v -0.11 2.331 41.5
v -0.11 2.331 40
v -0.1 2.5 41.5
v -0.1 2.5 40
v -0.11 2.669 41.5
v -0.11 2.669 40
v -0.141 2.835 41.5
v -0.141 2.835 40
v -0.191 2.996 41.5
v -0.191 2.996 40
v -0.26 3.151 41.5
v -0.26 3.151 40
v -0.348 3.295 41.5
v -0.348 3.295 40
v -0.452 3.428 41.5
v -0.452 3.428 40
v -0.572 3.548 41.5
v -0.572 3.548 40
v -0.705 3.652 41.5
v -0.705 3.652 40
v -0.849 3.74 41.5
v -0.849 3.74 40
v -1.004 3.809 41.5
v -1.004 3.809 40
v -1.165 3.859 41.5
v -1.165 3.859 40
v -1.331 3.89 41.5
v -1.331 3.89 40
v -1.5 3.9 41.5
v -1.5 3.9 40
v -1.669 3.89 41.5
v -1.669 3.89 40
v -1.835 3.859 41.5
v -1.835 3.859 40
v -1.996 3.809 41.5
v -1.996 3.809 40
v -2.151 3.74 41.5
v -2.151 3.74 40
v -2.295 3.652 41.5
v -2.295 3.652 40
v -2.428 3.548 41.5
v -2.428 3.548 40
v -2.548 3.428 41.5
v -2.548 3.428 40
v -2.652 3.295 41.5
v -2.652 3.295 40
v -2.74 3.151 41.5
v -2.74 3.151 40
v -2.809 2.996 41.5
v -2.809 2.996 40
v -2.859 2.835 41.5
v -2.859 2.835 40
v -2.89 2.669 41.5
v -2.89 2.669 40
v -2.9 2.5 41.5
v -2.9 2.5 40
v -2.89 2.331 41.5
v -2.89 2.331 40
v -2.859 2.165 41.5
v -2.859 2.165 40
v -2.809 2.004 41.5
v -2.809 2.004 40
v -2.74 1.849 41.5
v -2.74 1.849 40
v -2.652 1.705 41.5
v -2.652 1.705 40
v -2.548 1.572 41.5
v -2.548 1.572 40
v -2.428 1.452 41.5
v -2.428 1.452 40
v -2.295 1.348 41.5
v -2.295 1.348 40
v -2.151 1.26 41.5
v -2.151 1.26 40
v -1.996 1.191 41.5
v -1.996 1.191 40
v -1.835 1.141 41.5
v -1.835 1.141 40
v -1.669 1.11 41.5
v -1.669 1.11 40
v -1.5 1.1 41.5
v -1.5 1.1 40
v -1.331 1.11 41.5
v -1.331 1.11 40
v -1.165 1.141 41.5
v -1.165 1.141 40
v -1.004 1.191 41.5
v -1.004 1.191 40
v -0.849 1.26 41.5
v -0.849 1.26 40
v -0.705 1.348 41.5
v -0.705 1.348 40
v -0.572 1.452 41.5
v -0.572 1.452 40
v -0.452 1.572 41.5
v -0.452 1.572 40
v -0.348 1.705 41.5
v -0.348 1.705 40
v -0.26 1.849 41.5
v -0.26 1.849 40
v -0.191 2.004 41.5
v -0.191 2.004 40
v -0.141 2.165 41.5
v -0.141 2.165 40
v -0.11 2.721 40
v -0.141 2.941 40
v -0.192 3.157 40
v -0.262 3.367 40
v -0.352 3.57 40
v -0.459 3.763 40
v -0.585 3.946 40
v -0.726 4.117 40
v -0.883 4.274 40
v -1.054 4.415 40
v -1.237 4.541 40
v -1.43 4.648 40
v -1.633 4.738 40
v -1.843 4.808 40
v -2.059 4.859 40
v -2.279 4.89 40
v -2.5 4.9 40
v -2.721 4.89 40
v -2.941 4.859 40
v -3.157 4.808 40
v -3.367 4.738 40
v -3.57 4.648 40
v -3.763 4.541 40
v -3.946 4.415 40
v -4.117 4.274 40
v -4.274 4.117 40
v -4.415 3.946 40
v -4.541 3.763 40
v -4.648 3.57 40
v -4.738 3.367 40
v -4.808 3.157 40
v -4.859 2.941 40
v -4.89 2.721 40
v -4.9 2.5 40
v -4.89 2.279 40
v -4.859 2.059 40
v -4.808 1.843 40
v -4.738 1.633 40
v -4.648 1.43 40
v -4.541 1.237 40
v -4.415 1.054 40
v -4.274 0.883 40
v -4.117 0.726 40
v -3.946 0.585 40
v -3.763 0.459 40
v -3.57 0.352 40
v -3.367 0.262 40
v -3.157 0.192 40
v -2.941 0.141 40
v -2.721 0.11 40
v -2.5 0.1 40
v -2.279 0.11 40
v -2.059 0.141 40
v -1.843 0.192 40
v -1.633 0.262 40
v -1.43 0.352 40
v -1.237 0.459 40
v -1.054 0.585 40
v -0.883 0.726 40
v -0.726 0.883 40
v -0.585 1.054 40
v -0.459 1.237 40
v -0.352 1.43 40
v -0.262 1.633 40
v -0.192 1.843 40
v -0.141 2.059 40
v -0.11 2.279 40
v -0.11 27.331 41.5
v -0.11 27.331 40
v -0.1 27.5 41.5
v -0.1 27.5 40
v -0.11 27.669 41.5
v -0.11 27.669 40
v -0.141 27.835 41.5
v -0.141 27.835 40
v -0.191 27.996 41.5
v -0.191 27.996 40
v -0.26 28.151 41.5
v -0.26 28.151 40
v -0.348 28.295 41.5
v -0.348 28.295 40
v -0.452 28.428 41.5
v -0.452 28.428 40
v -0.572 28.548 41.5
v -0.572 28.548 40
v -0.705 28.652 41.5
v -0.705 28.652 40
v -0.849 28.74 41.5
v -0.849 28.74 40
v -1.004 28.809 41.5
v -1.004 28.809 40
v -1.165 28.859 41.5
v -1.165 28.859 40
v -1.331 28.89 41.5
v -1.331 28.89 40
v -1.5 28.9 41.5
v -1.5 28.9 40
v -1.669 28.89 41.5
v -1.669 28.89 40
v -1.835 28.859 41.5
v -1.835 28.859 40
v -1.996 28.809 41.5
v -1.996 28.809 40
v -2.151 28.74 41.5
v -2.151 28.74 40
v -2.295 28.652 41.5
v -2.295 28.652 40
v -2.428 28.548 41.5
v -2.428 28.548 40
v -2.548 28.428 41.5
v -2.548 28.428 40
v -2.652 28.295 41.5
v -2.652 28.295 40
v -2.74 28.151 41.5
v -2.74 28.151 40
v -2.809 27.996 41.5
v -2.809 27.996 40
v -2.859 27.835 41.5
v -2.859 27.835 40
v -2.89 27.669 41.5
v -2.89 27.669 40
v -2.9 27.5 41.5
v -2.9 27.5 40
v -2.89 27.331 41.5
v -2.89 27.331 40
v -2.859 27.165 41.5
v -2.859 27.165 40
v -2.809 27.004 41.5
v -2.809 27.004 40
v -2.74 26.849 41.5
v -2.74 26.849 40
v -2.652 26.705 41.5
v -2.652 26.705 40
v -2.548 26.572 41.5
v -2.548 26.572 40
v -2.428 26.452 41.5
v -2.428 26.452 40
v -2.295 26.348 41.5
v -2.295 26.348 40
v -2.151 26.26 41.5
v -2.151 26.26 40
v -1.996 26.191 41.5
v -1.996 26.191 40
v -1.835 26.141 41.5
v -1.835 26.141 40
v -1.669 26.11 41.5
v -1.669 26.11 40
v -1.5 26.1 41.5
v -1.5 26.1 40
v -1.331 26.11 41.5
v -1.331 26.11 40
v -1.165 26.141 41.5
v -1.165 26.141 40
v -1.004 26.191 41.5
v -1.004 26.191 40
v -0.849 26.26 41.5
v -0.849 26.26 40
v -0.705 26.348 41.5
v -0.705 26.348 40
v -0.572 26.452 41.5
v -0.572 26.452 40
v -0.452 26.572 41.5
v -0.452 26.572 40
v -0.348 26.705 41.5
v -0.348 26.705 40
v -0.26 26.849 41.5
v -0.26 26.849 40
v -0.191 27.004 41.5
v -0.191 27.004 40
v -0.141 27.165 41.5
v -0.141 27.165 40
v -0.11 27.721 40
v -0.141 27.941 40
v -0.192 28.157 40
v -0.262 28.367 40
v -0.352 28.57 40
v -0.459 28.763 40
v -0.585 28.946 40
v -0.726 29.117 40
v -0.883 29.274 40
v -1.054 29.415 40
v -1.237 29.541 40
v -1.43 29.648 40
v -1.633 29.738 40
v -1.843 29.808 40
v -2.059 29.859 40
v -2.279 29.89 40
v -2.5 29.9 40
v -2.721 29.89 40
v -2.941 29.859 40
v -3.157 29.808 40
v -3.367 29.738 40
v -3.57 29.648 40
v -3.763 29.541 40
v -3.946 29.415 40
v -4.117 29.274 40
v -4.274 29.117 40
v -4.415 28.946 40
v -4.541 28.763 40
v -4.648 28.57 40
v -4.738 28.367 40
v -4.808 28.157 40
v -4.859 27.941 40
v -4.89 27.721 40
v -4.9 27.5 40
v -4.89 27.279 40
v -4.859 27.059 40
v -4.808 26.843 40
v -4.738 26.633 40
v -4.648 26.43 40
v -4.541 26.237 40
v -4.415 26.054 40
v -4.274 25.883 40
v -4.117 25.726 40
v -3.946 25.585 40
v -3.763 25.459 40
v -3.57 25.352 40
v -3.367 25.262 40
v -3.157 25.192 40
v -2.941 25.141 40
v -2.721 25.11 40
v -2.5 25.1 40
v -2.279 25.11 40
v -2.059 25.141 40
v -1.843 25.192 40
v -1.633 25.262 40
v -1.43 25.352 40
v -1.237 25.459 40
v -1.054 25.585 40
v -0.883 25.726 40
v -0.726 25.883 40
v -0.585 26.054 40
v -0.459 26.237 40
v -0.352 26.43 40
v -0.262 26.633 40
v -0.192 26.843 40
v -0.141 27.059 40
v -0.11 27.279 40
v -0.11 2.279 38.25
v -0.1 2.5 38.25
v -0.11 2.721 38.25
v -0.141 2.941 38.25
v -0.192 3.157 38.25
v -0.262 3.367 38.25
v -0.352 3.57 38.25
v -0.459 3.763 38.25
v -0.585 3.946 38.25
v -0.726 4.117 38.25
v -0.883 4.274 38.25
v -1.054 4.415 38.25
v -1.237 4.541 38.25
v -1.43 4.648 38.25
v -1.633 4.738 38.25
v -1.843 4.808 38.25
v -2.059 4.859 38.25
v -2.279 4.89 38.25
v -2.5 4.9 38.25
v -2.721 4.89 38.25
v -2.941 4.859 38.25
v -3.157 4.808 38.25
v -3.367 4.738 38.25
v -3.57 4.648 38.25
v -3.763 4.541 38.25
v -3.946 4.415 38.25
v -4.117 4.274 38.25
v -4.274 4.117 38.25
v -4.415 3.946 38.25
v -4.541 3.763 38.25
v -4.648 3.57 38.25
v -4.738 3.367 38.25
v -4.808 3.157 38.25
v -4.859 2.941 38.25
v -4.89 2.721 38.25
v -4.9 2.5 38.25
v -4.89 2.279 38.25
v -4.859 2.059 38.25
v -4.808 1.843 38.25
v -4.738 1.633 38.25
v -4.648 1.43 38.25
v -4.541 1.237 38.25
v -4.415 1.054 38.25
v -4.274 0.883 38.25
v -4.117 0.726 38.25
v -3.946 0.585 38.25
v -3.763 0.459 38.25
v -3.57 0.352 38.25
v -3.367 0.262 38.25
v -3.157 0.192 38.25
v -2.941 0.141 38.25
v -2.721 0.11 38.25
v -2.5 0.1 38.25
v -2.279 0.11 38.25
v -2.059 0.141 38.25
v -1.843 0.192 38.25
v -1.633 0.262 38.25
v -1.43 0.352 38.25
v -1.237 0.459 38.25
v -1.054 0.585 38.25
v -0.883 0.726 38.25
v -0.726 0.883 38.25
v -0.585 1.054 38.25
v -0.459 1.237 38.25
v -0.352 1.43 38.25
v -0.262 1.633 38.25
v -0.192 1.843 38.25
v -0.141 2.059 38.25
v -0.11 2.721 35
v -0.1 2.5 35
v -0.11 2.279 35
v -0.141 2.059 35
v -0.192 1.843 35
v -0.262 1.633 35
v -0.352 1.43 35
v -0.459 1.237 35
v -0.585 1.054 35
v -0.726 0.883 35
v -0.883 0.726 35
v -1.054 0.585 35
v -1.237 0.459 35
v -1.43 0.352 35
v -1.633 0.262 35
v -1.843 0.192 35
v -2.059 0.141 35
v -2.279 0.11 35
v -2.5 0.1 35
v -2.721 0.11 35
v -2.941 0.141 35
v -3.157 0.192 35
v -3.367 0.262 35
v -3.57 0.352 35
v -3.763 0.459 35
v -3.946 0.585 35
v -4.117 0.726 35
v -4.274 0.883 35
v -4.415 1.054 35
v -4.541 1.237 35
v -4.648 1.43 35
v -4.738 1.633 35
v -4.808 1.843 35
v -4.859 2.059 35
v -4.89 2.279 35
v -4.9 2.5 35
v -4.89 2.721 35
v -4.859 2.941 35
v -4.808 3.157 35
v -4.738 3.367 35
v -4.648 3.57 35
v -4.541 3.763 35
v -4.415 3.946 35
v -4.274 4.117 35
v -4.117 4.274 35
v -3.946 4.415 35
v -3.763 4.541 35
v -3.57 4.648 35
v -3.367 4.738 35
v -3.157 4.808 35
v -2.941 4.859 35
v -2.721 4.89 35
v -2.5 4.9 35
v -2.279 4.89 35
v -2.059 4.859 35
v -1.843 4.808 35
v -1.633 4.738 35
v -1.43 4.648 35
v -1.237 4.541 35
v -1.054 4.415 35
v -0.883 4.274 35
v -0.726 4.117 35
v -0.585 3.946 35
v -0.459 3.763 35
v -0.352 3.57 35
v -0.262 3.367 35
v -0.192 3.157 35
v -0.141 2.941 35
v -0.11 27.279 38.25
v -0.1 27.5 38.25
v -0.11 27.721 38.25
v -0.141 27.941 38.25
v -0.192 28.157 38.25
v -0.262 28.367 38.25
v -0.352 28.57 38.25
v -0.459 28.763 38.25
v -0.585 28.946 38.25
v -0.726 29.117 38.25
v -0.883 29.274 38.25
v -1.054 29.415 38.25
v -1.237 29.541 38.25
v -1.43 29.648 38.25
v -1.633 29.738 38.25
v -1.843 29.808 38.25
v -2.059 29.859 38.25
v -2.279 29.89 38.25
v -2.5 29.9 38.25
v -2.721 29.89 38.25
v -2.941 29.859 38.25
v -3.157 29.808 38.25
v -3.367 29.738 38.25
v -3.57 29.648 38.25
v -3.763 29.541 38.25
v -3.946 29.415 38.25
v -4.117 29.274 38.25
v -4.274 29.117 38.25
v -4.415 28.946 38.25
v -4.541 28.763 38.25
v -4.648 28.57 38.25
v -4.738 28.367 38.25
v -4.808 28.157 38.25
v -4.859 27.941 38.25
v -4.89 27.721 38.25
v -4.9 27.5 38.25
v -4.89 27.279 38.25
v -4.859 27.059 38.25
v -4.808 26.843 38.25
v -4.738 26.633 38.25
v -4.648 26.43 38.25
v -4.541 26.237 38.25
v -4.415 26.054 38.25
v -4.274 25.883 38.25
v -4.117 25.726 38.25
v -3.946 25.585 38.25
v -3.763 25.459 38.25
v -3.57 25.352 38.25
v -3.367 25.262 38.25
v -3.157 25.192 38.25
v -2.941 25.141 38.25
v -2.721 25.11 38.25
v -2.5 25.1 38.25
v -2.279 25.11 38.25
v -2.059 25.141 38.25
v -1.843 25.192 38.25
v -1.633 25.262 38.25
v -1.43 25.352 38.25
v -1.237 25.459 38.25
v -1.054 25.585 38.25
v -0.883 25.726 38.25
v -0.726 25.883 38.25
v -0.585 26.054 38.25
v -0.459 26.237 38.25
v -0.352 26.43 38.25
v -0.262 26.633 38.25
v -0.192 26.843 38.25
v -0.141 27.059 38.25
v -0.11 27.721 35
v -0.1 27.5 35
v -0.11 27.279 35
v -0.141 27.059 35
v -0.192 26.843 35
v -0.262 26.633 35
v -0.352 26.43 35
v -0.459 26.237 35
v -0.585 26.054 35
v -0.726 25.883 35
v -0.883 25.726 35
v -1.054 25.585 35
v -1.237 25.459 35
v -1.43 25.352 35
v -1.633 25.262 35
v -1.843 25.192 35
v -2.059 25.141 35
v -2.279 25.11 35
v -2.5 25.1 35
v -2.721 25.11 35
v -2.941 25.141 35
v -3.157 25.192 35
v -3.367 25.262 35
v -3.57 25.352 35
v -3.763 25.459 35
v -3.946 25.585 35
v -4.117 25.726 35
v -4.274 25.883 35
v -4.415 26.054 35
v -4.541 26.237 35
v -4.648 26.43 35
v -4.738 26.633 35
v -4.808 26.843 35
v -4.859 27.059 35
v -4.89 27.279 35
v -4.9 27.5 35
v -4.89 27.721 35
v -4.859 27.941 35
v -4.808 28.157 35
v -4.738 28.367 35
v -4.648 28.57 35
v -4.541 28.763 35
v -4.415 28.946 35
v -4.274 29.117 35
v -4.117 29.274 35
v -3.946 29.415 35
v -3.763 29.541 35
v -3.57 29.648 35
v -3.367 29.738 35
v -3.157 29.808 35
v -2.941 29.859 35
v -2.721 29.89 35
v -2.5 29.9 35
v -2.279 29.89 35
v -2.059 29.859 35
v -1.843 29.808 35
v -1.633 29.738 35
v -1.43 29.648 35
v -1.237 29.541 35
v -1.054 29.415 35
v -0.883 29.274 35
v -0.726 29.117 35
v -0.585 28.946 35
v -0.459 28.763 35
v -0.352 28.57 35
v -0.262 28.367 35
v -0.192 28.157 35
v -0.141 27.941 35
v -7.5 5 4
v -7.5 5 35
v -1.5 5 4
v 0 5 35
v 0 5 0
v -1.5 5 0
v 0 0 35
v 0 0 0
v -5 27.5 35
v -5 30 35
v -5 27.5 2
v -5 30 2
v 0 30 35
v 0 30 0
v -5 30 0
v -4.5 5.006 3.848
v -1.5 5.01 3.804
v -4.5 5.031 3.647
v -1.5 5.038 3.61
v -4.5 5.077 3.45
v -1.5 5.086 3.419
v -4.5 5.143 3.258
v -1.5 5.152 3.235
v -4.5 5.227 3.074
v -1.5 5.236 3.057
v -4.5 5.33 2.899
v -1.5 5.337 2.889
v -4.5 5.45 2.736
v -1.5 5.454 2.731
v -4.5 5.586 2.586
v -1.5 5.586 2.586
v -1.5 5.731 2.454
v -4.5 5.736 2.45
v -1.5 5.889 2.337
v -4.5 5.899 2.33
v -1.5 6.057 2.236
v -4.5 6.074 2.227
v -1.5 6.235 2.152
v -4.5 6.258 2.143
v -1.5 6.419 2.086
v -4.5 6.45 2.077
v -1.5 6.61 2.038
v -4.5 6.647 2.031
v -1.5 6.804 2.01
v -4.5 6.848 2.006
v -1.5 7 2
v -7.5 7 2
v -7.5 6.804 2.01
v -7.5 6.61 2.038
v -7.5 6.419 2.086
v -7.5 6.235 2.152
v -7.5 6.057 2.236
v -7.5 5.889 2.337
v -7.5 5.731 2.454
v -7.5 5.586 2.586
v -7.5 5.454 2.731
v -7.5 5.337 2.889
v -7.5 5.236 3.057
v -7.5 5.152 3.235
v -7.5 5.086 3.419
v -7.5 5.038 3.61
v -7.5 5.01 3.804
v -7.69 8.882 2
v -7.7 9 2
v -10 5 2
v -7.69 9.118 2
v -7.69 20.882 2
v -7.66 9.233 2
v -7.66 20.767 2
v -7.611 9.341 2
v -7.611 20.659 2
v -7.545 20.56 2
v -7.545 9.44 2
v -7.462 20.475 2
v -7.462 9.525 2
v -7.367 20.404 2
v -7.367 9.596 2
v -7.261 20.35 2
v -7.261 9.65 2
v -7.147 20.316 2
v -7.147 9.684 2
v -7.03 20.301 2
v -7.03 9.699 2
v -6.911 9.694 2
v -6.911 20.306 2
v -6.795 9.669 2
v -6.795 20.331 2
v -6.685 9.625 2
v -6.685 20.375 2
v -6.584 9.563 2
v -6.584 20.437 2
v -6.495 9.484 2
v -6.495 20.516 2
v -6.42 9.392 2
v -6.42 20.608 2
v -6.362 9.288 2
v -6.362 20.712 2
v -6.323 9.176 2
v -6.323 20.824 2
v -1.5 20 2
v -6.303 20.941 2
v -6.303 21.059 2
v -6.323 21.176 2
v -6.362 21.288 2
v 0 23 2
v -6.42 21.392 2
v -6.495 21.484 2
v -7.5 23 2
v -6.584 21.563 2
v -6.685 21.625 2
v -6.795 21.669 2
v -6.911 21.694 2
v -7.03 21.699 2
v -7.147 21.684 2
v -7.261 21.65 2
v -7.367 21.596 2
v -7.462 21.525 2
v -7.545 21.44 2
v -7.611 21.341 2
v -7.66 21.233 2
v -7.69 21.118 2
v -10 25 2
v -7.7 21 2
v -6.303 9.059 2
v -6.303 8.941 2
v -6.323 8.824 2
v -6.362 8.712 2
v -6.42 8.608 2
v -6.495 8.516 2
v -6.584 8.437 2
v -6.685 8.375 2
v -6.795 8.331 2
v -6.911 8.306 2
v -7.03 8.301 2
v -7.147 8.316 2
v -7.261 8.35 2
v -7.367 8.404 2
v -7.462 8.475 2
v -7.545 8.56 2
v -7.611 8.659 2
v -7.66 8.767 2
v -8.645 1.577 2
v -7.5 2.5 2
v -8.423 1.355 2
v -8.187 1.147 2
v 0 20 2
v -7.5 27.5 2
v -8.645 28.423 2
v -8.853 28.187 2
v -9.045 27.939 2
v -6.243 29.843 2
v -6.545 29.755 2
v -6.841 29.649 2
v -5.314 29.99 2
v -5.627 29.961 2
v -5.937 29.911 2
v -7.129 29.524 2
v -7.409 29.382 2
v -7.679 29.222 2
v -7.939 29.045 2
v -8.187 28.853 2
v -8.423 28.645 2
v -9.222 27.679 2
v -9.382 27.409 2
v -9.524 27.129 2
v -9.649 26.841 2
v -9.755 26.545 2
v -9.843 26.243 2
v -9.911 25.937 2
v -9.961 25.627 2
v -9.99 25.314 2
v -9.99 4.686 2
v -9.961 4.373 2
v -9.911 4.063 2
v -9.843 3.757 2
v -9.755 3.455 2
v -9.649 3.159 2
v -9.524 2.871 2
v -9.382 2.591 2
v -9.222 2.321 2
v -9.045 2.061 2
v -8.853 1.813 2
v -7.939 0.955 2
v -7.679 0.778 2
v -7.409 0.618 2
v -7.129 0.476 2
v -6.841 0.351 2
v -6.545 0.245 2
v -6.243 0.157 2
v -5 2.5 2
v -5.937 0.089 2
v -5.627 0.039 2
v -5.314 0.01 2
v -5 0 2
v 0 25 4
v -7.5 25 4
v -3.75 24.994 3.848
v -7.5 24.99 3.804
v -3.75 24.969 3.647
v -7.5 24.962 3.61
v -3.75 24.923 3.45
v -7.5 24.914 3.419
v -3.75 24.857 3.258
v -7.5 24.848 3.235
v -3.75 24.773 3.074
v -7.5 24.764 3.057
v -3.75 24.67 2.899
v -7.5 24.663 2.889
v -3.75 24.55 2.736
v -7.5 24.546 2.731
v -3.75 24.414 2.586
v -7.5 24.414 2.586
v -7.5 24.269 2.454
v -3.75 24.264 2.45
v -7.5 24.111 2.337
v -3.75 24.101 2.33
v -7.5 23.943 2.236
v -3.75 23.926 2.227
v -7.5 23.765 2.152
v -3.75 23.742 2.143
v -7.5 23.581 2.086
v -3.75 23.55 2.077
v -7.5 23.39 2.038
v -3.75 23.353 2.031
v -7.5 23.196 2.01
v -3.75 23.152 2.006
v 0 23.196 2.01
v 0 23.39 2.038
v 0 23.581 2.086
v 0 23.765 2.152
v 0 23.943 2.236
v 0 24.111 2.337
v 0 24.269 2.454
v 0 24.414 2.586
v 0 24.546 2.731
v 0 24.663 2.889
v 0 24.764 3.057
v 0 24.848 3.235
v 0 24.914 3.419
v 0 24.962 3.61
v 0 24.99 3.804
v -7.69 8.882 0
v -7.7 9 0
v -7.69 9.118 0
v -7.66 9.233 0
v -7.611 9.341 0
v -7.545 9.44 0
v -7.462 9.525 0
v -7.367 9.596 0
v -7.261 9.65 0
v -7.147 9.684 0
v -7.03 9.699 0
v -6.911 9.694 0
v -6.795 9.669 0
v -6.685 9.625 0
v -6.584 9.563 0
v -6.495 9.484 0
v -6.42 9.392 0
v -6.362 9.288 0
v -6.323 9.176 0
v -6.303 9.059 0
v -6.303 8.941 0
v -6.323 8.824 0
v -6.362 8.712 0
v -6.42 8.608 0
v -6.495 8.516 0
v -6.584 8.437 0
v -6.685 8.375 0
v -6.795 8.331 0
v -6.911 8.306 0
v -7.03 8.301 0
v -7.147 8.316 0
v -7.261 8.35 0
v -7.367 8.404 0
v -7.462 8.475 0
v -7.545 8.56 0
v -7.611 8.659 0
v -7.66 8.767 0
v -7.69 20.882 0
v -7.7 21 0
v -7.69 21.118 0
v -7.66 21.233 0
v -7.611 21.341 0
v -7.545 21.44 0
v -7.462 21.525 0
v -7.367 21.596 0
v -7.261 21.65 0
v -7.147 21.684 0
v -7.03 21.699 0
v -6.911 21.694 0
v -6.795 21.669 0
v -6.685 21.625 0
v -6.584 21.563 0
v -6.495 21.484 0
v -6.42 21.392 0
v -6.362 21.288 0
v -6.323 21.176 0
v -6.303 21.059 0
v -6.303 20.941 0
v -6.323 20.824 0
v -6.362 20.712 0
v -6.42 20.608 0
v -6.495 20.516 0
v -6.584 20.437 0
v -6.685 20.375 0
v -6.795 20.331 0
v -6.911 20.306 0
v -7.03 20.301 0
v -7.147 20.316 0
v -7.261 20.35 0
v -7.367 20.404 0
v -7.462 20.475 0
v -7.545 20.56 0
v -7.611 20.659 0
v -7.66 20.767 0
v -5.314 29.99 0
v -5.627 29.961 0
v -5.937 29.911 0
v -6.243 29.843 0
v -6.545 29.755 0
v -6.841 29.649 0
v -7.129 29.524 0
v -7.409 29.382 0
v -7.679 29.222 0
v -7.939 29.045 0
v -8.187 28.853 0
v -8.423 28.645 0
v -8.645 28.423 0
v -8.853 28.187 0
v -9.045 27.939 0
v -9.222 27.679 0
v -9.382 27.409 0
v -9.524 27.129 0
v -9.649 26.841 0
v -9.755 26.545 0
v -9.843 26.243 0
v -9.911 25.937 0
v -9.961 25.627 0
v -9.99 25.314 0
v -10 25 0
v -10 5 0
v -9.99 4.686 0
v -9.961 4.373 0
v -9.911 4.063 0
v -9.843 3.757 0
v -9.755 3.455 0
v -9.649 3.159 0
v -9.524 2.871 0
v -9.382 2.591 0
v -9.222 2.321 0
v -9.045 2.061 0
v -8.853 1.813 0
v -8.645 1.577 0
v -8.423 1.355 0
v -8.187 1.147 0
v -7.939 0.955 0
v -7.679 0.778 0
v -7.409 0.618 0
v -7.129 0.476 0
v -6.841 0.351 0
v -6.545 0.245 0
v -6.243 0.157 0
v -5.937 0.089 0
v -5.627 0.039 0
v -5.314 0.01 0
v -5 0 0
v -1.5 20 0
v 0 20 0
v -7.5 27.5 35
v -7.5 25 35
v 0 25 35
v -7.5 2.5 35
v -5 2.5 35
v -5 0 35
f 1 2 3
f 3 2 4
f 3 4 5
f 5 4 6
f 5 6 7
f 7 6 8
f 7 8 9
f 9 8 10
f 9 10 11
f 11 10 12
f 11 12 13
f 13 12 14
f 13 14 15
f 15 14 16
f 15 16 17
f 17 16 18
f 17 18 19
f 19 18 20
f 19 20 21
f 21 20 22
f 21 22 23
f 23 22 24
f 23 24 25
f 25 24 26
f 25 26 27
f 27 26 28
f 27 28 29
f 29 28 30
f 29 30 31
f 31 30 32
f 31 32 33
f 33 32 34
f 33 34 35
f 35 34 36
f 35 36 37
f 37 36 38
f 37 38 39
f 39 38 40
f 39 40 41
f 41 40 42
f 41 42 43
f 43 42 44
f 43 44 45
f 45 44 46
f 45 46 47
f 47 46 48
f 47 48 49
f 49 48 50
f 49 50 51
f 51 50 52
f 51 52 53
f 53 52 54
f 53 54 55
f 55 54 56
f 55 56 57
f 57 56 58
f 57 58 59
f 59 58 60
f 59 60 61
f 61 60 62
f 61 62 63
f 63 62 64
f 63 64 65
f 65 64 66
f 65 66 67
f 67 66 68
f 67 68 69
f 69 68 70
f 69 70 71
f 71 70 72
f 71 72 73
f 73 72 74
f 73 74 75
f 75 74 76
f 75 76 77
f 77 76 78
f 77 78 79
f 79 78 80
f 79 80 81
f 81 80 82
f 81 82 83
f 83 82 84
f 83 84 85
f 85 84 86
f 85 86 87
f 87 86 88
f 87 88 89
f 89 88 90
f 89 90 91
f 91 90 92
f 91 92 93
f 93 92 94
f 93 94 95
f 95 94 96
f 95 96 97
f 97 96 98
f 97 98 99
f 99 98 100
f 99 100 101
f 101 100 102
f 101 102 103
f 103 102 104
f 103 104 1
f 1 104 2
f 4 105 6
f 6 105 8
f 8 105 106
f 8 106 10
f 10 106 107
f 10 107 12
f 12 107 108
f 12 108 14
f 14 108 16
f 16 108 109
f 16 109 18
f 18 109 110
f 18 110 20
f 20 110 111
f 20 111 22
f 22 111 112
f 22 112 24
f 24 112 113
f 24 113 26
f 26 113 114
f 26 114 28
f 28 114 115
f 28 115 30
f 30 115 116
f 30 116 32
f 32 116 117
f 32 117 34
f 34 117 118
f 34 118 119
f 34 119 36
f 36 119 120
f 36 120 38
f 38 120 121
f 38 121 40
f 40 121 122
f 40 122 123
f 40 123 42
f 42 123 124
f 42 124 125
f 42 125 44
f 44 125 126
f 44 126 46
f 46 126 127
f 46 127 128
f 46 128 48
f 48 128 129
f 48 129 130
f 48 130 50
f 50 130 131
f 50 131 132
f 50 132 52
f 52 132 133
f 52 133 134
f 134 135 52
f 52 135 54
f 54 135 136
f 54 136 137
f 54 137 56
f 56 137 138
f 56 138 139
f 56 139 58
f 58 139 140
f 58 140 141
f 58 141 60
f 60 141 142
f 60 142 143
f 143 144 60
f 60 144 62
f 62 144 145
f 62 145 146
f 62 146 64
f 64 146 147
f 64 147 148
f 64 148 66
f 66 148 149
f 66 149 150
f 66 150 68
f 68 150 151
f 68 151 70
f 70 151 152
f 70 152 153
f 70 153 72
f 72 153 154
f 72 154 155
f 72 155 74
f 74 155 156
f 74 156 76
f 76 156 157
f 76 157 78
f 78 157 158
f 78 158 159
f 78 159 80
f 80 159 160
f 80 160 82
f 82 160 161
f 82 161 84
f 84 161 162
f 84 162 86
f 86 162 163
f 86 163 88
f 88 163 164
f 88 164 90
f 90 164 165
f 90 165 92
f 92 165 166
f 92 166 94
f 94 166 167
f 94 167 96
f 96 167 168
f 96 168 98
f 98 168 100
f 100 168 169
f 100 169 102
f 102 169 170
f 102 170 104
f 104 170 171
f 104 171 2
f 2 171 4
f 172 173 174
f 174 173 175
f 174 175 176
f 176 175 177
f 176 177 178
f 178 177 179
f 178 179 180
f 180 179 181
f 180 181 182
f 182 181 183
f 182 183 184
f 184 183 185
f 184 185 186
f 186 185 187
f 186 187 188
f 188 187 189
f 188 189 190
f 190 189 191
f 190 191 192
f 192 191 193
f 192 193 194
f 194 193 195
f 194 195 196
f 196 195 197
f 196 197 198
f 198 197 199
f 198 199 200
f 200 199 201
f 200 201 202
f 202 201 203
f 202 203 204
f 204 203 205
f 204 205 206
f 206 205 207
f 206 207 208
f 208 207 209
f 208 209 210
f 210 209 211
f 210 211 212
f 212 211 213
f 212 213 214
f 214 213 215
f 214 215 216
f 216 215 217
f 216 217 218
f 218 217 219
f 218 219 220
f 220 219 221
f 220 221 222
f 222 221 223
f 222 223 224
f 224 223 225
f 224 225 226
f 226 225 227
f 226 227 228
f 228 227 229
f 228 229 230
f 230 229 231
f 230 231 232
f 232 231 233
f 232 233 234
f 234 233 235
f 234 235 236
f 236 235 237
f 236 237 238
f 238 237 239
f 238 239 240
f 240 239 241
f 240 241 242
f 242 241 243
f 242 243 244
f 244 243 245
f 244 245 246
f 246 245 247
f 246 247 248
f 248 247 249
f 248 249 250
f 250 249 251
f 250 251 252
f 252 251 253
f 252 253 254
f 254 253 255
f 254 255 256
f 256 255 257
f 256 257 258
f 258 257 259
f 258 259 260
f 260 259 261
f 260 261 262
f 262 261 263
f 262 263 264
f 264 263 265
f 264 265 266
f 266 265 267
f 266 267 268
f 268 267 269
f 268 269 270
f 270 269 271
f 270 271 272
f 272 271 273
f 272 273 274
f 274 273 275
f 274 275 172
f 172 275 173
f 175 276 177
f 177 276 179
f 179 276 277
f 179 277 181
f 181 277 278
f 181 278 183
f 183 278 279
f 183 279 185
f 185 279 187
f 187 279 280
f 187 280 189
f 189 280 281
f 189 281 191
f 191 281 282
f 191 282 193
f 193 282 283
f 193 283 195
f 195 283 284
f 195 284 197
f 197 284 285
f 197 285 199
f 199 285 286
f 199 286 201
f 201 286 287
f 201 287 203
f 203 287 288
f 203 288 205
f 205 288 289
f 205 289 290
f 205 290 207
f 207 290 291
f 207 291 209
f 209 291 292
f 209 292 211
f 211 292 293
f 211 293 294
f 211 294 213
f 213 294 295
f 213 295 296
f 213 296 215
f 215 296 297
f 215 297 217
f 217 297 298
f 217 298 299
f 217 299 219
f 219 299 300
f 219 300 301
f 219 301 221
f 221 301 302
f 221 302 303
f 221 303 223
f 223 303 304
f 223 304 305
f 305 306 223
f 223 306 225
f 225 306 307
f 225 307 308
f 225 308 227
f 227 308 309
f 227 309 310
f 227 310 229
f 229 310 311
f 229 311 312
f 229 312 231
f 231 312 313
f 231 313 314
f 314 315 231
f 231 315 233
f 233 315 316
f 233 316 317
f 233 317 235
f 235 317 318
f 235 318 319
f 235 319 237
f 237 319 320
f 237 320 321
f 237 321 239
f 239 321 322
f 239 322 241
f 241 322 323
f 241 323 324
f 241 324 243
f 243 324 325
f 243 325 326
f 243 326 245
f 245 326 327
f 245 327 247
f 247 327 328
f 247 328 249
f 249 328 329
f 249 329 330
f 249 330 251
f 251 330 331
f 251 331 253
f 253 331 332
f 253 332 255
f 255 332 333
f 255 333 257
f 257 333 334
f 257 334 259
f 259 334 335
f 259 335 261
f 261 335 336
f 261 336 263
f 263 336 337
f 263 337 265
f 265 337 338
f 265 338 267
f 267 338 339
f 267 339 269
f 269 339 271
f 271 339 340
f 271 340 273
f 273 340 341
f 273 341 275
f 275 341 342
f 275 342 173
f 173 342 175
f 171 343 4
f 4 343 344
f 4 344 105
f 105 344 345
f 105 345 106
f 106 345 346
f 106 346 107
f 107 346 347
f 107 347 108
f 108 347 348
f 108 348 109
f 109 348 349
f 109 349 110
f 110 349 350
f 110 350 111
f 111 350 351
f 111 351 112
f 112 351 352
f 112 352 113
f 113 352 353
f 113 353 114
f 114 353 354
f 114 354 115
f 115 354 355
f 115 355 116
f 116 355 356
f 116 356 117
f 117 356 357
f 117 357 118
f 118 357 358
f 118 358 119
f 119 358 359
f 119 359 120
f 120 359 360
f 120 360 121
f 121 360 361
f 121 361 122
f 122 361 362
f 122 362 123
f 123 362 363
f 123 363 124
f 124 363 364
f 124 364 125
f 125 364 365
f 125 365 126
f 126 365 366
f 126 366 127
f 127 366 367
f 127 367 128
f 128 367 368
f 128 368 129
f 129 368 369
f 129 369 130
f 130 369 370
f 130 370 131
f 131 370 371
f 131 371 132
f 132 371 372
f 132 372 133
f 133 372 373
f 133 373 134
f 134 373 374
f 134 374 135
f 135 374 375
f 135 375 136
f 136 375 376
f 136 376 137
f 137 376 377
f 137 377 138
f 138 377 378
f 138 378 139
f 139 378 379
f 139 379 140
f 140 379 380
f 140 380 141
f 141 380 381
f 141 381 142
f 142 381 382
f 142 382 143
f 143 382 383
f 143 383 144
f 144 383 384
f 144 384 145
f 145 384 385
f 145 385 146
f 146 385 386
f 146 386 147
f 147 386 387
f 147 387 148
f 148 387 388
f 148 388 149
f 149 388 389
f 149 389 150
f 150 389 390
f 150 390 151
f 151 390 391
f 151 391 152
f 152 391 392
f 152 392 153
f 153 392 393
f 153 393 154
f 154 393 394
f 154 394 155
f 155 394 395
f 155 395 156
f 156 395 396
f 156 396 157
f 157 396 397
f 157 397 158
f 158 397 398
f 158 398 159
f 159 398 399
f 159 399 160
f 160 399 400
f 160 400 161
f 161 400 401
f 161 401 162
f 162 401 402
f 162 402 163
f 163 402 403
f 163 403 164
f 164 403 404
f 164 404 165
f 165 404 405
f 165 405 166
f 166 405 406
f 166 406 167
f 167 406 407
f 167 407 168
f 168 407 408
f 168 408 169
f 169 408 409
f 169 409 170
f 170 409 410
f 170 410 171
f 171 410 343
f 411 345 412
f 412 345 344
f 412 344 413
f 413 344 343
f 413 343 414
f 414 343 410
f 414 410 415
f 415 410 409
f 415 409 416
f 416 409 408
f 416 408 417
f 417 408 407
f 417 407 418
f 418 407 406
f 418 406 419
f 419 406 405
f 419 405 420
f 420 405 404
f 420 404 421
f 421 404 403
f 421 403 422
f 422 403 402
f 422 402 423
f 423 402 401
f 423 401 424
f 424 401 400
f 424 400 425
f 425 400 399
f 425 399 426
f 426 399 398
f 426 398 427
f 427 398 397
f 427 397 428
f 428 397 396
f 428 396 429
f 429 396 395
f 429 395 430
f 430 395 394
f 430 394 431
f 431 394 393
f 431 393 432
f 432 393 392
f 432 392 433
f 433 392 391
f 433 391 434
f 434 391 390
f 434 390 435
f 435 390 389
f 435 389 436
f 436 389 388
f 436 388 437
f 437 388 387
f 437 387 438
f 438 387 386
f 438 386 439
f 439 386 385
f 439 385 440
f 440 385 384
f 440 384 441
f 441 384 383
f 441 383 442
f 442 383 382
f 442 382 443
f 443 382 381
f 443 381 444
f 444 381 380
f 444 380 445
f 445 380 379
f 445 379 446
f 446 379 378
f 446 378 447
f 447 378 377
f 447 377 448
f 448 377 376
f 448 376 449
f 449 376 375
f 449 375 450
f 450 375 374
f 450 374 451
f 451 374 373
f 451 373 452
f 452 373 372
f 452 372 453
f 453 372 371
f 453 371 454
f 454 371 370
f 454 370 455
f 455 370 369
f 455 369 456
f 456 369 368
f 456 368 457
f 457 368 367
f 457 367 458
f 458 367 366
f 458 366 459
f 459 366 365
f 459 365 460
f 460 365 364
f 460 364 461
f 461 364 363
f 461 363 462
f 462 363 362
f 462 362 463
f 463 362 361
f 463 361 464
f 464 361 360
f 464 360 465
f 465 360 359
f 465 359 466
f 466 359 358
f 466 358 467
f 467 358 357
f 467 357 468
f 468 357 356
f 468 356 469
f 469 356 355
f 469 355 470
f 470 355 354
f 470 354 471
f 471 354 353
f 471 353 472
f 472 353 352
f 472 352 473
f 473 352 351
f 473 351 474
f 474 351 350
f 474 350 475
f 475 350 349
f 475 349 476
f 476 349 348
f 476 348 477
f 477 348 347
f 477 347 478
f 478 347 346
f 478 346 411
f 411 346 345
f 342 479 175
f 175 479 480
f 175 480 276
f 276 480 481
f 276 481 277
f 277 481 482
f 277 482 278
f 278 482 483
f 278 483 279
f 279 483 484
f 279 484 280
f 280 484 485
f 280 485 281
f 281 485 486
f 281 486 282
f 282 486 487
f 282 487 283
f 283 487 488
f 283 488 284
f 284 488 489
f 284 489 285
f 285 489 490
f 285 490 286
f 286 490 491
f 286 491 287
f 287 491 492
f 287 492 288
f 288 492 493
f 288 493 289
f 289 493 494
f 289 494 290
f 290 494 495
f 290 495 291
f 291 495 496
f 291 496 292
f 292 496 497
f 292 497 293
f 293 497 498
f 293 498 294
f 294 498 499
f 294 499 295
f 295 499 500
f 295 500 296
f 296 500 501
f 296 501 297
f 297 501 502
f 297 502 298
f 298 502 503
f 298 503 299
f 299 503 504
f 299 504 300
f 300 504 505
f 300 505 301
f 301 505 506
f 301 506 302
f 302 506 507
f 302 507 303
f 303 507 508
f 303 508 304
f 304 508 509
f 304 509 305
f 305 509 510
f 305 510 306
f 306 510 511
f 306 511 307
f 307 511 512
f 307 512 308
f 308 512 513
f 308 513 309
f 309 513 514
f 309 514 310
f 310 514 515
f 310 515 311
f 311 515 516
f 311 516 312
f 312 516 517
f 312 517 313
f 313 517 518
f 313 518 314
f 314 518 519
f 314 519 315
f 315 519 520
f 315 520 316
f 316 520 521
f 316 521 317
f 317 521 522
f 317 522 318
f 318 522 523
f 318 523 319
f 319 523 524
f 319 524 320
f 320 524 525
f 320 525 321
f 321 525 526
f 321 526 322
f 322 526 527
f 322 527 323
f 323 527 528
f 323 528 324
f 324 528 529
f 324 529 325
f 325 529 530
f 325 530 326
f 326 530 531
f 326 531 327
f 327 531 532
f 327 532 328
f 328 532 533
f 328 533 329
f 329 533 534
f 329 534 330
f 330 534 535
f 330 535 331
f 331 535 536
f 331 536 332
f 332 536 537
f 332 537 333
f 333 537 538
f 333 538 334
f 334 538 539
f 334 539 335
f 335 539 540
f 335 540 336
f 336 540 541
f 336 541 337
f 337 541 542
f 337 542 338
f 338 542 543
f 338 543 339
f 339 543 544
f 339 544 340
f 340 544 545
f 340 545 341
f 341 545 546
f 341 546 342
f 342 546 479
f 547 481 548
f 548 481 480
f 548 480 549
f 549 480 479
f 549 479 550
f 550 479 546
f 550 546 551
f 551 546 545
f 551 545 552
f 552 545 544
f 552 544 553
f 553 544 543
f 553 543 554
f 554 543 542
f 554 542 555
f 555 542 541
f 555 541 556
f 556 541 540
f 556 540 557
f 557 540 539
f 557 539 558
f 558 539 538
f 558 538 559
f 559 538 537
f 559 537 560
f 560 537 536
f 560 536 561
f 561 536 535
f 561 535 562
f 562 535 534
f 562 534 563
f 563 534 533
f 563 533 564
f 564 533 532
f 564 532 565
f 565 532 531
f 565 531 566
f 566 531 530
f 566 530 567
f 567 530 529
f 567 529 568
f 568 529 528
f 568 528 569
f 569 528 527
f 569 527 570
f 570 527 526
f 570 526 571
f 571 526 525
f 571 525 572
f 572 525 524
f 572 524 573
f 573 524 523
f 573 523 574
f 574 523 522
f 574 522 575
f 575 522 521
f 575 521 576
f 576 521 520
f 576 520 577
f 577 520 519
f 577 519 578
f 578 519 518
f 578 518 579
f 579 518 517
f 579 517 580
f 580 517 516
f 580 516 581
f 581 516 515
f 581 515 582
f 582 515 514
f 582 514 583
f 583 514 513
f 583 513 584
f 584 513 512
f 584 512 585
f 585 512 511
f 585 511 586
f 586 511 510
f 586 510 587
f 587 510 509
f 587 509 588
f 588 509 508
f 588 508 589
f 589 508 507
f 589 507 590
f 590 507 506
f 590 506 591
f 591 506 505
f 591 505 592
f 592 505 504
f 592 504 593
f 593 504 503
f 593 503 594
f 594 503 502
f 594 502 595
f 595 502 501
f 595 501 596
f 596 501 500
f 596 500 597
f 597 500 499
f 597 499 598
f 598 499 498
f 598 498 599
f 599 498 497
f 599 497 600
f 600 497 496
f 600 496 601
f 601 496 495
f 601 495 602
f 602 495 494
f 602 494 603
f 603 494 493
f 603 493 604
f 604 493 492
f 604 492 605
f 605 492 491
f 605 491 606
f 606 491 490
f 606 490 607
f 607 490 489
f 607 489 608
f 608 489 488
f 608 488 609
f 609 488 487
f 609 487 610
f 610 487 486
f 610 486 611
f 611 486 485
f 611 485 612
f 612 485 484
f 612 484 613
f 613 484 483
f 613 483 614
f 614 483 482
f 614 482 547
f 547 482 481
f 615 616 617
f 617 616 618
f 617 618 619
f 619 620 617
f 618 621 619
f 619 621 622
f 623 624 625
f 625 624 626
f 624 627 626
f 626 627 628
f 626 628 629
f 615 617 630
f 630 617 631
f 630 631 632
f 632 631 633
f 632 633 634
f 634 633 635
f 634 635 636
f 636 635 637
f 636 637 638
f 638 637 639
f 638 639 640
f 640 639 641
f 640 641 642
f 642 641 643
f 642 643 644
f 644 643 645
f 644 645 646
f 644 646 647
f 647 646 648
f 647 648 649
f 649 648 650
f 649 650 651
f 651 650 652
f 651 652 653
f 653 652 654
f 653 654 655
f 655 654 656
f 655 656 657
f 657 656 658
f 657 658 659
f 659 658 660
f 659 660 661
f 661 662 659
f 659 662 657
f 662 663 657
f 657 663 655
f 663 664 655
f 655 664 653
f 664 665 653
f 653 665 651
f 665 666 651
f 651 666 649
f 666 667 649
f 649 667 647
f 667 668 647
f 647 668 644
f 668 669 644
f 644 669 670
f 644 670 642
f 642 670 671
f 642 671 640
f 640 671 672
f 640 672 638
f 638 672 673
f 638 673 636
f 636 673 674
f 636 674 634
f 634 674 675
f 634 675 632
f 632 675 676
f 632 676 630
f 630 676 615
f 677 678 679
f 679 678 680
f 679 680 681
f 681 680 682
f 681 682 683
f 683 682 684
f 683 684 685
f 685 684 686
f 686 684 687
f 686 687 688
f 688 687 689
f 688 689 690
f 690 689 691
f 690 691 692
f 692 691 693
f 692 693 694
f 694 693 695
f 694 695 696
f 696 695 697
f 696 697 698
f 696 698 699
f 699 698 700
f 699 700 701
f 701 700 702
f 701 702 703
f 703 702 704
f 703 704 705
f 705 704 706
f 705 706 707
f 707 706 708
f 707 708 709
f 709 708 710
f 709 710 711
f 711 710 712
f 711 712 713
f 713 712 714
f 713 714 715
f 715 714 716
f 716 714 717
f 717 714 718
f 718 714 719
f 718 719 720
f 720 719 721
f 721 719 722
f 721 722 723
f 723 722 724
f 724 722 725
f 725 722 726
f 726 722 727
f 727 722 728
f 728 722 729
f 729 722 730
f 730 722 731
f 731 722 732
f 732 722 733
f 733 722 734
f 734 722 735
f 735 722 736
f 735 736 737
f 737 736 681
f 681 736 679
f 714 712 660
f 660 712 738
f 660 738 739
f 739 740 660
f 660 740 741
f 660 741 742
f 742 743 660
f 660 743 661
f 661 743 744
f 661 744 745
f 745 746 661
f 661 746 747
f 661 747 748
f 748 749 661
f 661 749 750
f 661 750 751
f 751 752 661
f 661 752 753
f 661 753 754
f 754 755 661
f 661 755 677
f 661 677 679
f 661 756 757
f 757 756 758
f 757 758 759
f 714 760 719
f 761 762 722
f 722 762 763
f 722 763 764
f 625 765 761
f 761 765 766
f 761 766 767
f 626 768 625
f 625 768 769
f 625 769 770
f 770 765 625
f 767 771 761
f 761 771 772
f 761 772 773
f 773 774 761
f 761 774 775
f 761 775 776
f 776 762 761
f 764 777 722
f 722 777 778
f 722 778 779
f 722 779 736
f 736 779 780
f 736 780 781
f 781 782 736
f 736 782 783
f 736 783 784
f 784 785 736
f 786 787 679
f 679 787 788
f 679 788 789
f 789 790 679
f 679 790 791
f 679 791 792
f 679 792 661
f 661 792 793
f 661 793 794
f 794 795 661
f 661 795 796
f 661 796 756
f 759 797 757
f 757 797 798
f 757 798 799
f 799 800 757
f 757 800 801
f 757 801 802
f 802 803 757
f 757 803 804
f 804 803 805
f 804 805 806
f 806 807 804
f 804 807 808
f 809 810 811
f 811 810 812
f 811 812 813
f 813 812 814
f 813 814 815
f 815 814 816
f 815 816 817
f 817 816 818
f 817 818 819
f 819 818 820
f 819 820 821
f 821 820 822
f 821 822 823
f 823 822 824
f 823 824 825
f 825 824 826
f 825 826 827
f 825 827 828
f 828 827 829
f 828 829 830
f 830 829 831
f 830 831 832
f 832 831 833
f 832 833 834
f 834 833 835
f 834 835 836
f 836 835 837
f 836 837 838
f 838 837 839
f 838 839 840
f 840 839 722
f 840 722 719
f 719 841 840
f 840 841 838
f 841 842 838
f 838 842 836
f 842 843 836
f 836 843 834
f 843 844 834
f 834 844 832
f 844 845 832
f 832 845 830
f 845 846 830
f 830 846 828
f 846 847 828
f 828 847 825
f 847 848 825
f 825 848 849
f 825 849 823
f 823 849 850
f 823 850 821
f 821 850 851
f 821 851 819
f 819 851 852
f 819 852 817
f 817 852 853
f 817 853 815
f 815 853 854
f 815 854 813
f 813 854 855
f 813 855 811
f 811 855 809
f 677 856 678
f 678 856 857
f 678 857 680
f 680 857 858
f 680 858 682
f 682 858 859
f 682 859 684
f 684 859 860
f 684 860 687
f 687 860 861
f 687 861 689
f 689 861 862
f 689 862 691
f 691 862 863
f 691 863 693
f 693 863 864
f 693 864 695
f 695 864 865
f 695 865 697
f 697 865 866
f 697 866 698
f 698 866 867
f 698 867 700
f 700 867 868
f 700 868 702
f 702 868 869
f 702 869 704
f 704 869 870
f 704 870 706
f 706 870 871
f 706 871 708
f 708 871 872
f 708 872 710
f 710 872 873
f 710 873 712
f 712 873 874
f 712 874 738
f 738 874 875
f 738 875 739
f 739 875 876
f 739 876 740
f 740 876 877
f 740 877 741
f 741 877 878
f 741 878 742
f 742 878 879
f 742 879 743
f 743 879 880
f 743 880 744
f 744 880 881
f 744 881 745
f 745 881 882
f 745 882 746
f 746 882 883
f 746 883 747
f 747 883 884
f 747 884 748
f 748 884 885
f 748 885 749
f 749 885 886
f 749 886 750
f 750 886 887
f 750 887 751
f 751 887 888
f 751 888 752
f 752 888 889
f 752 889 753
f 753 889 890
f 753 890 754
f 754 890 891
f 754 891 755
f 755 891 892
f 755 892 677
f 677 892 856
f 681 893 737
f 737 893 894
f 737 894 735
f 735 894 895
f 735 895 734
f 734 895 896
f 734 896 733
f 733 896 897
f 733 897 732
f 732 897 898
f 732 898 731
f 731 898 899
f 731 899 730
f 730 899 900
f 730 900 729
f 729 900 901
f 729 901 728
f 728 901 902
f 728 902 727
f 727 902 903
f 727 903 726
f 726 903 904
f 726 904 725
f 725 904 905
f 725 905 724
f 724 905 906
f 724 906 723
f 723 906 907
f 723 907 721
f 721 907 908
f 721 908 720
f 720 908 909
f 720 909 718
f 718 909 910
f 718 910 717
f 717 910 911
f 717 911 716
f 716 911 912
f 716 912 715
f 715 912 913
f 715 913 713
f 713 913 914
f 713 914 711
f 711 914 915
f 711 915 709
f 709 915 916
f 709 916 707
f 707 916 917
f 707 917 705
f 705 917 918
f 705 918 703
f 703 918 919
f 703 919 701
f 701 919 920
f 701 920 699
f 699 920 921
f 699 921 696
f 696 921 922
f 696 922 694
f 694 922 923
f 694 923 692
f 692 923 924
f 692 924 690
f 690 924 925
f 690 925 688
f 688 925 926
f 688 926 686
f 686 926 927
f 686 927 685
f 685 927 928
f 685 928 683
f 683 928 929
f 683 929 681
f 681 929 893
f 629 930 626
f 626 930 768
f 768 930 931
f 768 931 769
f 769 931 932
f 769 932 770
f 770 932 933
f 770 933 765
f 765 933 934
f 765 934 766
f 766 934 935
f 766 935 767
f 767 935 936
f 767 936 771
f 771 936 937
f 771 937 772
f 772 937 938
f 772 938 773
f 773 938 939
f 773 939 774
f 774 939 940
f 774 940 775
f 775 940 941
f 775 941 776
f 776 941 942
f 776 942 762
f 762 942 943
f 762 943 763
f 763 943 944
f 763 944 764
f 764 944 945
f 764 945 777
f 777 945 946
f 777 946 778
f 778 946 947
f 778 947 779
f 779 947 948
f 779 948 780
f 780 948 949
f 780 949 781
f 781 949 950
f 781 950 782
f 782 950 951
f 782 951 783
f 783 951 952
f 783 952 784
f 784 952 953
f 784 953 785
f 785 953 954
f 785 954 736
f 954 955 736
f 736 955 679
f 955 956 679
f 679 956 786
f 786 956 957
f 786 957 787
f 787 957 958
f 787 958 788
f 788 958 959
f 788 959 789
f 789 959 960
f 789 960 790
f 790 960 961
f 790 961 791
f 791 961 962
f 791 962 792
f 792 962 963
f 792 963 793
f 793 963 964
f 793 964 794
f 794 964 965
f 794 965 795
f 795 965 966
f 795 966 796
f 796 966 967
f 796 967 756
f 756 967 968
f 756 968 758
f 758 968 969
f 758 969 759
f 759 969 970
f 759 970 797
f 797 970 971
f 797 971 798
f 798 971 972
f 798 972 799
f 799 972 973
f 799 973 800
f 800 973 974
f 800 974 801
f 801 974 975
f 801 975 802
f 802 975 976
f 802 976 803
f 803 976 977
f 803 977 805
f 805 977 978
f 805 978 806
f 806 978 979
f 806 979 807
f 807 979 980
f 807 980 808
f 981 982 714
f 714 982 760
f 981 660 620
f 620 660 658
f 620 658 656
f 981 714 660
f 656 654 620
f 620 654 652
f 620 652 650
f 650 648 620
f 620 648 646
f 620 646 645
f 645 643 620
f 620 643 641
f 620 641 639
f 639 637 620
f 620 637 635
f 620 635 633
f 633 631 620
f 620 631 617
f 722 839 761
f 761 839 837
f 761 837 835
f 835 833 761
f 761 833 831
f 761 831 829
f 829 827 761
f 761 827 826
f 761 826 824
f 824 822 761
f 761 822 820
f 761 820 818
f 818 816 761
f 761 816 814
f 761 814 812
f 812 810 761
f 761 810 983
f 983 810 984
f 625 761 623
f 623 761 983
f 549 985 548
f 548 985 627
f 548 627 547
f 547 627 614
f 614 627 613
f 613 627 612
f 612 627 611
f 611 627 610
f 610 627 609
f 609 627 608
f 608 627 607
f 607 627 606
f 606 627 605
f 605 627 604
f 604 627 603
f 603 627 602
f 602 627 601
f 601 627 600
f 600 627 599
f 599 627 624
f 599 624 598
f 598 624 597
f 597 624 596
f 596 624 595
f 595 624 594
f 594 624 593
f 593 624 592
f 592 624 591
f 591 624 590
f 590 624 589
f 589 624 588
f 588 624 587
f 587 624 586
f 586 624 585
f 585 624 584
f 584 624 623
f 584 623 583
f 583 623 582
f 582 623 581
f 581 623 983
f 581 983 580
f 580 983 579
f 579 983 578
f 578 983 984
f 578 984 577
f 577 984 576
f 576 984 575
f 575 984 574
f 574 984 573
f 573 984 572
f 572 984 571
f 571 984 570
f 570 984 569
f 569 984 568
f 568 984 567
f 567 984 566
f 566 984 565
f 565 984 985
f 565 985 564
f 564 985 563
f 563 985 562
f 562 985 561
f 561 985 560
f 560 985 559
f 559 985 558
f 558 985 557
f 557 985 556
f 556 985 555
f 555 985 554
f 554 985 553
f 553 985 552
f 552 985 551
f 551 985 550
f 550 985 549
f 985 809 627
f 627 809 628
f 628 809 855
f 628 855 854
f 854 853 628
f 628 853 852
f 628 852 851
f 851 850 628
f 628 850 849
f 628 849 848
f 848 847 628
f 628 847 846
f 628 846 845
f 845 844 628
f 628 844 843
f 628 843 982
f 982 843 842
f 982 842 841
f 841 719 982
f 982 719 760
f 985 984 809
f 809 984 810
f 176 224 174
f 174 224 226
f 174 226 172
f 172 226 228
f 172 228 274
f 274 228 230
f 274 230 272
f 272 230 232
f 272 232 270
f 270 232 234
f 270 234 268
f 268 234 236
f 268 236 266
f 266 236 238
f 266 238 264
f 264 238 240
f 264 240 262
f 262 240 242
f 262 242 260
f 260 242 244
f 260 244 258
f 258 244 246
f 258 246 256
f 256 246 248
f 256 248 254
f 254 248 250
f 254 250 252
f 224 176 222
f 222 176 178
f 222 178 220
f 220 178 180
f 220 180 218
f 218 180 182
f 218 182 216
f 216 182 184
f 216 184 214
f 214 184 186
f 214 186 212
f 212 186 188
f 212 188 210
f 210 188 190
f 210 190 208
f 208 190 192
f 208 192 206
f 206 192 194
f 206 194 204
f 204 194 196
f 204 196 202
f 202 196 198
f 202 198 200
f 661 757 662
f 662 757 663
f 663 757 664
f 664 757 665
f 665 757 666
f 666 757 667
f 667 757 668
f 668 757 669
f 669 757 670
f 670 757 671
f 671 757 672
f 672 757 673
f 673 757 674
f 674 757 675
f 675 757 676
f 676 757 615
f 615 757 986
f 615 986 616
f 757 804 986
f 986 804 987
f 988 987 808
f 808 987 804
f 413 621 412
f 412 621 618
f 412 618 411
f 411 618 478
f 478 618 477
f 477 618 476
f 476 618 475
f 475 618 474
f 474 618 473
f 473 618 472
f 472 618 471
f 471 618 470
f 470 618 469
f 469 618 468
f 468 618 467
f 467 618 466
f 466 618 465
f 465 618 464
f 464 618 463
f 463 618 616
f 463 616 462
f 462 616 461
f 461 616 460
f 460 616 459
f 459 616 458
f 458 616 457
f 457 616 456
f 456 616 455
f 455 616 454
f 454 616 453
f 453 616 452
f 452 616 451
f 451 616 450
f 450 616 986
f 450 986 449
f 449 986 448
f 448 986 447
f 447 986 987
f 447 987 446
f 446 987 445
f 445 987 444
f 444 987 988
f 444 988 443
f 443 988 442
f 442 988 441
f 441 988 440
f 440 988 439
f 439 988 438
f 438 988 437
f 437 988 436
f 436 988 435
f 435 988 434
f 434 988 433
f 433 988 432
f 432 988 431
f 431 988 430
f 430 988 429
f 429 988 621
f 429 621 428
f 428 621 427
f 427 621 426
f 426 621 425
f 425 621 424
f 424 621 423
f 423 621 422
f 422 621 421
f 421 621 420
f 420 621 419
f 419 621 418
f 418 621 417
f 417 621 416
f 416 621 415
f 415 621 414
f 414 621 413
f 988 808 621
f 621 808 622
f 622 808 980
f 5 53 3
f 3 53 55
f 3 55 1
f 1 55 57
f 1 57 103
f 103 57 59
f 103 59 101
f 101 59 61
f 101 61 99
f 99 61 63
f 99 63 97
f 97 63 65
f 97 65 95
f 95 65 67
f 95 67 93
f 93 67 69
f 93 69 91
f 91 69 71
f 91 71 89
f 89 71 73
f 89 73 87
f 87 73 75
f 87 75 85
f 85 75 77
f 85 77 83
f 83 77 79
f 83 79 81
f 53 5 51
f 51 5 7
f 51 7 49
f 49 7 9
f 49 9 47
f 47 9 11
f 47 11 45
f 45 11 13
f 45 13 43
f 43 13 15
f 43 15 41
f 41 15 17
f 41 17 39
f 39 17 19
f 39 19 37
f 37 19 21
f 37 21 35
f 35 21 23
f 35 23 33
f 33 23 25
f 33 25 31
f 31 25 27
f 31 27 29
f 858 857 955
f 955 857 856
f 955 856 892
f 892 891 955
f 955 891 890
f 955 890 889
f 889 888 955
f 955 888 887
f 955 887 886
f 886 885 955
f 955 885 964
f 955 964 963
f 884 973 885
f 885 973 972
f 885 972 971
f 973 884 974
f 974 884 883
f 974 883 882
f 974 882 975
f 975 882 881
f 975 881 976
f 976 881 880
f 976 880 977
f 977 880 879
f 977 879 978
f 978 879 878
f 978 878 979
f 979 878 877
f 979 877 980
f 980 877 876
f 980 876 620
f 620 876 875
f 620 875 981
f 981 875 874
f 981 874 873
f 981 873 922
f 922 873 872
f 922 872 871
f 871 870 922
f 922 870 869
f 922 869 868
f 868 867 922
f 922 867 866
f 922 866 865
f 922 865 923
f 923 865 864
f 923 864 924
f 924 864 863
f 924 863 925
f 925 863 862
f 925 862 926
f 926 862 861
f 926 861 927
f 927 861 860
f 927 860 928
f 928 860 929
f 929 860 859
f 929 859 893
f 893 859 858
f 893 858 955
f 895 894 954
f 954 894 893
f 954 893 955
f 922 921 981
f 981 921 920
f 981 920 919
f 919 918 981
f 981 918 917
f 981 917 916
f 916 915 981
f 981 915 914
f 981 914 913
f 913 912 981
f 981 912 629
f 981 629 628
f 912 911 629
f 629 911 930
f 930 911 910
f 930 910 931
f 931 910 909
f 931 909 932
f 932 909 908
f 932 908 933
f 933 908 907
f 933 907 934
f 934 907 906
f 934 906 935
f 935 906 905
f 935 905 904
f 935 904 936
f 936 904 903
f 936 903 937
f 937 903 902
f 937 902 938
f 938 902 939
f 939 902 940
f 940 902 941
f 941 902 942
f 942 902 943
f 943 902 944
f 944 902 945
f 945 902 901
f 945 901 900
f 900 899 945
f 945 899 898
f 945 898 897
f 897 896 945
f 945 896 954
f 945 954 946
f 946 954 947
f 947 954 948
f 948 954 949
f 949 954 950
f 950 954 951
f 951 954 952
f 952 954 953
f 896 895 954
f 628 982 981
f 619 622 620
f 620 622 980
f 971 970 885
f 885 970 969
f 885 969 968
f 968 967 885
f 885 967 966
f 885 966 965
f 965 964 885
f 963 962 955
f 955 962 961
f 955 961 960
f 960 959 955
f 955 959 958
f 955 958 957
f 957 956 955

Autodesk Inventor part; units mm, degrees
ref_plane "YZ Plane" through (0, 0, 0) normal (1, 0, 0) x (0, 1, 0)
ref_plane "XZ Plane" through (0, 0, 0) normal (0, 1, 0) x (-1, 0, 0)
ref_plane "XY Plane" through (0, 0, 0) normal (0, 0, 1) x (1, 0, 0)
sketch "Esquisse1" plane through (0, 0, 0) normal (0, 0, 1) x (1, 0, 0)
  line L0 (0, 0) -> (-10, 0)
  line L1 (-10, 0) -> (-10, 30)
  line L2 (-10, 30) -> (0, 30)
  line L3 (0, 0) -> (-5, 0)
  line L4 (-5, 0) -> (-5, 5)
  line L5 (-5, 5) -> (0, 5)
  line L6 (0, 5) -> (0, 0)
  line L7 (0, 4) -> (-3, 4)
  line L8 (-3, 4) -> (-3, 1)
  line L9 (-3, 1) -> (0, 1)
  line L10 (0, 1) -> (0, 4)
  line L11 (-1.5, 5) -> (-1.5, 20)
  line L12 (-1.5, 20) -> (0, 20)
  line L13 (0, 30) -> (0, 20)
  line L14 (0, 5) -> (0, 0)
  line L15 (0, 29) -> (-3, 29)
  line L16 (-3, 29) -> (-3, 26)
  line L17 (-3, 26) -> (0, 26)
  line L18 (0, 26) -> (0, 29)
  line L19 (0, 25) -> (-5, 25)
  line L20 (-5, 25) -> (-5, 30)
  line L21 (-5, 25) -> (-7.5, 25)
  line L22 (-7.5, 25) -> (-7.5, 27.5)
  line L23 (-7.5, 27.5) -> (-5, 27.5)
  line L24 (-5, 27.5) -> (-5, 25)
  line L25 (-5, 0) -> (-7.5, 0)
  line L26 (-5, 2.5) -> (-5, 0)
  line L27 (-5, 5) -> (-7.5, 5)
  line L28 (-7.5, 5) -> (-7.5, 2.5)
  line L29 (-7.5, 2.5) -> (-5, 2.5)
  line L30 (-5, 2.5) -> (-5, 5)
  line L31 (-3, 26) -> (0, 26)
  line L32 (0, 26) -> (0, 29)
  line L33 (0, 29) -> (-3, 29)
  line L34 (-3, 29) -> (-3, 26)
  line L35 (-3, 1) -> (0, 1)
  line L36 (0, 1) -> (0, 4)
  line L37 (0, 4) -> (-3, 4)
  line L38 (-3, 4) -> (-3, 1)
  dimension "d0" = 10
  dimension "d1" = 30
  dimension "d2" = 5
  dimension "d3" = 5
  dimension "d4" = 3
  dimension "d5" = 3
  dimension "d6" = 1
  dimension "d7" = 15
  dimension "d9" = 3
  dimension "d10" = 3
  dimension "d11" = 1
  dimension "d12" = 5
  dimension "d13" = 5
  dimension "d14" = 2.5
  dimension "d15" = 2.5
  dimension "d20" = 2.5
  dimension "d21" = 2.5
extrude "Extrusion1" add sketch "Esquisse1" along normal blind 41.5 contours L0 L4 L5 L6 L7 L8 L9 | L9 L8 L7 L6 | L2 L13 L15 L16 L17 L19 L20 | L13 L17 L16 L15
extrude "Extrusion2" add sketch "Esquisse1" along normal blind 35 contours L29 L28 L27 L4 | L20 L21 L22 L23
extrude "Extrusion4" add sketch "Esquisse1" along normal blind 2 contours L0 L1 L2 L20 L23 L22 L21 L19 L13 L12 L11 L5 L27 L28 L29 L4
fillet "Congé1" radius 5 2 edges at (-10, 0, 1) (-10, 30, 1)
sketch "Esquisse3" plane through (0, 0, 0) normal (0, 0, -1) x (-1, 0, 0)
  circle A0 centre (7, 9) radius 0.7
  circle A1 centre (7, 21) radius 0.7
  line L0 (0, 0) -> (0, 5) projected
  line L1 (0, 20) -> (0, 30) projected
  line L2 (5, 0) -> (0, 0) projected
  dimension "d29" = 1.4
  dimension "d30" = 1.4
  dimension "d31" = 12
  dimension "d32" = 7
  dimension "d33" = 7
  dimension "d34" = 9
extrude "Extrusion5" cut sketch "Esquisse3" against normal through all
fillet "Congé2" radius 2 2 edges at (-3.75, 25, 2) (-4.5, 5, 2)
sketch "Esquisse8" plane through (0, 0, 41.5) normal (0, 0, 1) x (1, 0, 0)
  line L0 (0, 0) -> (0, 5) projected
  line L1 (0, 5) -> (-5, 5) projected
  line L2 (-5, 5) -> (-5, 0) projected
  line L3 (-5, 0) -> (0, 0) projected
  line L4 (0, 30) -> (-5, 30) projected
  line L5 (-5, 30) -> (-5, 25) projected
  line L6 (-5, 25) -> (0, 25) projected
  line L7 (0, 25) -> (0, 30) projected
  circle A0 centre (-2.5, 2.5) radius 2.4
  circle A1 centre (-2.5, 27.5) radius 2.4
  dimension "d42" = 4.8
  dimension "d43" = 2.5
  dimension "d44" = 2.5
  dimension "d45" = 4.8
  dimension "d48" = 2.5
  dimension "d49" = 2.5
extrude "Extrusion8" cut sketch "Esquisse8" against normal blind 6.5
sketch "Esquisse9" plane through (-2.5, 2.5, 41.5) normal (0, 0, 1) x (1, 0, 0)
  circle A0 centre (0, 0) radius 2.4 projected
  circle A1 centre (0, 25) radius 2.4 projected
  line L0 (0, 0) -> (3.9146, 0)
  circle A2 centre (1, 0) radius 1.4
  circle A3 centre (0, 0) radius 2.4 projected
  line L1 (0, 25) -> (4.0517, 25)
  circle A4 centre (1, 25) radius 1.4
  point P0 (2.5, -2.5)
  dimension "d52" = 2.8
  dimension "d53" = 2.8
extrude "Extrusion9" cut sketch "Esquisse9" against normal blind 1.5
properties part number "blue_part-july21" material "Plastique ABS"
